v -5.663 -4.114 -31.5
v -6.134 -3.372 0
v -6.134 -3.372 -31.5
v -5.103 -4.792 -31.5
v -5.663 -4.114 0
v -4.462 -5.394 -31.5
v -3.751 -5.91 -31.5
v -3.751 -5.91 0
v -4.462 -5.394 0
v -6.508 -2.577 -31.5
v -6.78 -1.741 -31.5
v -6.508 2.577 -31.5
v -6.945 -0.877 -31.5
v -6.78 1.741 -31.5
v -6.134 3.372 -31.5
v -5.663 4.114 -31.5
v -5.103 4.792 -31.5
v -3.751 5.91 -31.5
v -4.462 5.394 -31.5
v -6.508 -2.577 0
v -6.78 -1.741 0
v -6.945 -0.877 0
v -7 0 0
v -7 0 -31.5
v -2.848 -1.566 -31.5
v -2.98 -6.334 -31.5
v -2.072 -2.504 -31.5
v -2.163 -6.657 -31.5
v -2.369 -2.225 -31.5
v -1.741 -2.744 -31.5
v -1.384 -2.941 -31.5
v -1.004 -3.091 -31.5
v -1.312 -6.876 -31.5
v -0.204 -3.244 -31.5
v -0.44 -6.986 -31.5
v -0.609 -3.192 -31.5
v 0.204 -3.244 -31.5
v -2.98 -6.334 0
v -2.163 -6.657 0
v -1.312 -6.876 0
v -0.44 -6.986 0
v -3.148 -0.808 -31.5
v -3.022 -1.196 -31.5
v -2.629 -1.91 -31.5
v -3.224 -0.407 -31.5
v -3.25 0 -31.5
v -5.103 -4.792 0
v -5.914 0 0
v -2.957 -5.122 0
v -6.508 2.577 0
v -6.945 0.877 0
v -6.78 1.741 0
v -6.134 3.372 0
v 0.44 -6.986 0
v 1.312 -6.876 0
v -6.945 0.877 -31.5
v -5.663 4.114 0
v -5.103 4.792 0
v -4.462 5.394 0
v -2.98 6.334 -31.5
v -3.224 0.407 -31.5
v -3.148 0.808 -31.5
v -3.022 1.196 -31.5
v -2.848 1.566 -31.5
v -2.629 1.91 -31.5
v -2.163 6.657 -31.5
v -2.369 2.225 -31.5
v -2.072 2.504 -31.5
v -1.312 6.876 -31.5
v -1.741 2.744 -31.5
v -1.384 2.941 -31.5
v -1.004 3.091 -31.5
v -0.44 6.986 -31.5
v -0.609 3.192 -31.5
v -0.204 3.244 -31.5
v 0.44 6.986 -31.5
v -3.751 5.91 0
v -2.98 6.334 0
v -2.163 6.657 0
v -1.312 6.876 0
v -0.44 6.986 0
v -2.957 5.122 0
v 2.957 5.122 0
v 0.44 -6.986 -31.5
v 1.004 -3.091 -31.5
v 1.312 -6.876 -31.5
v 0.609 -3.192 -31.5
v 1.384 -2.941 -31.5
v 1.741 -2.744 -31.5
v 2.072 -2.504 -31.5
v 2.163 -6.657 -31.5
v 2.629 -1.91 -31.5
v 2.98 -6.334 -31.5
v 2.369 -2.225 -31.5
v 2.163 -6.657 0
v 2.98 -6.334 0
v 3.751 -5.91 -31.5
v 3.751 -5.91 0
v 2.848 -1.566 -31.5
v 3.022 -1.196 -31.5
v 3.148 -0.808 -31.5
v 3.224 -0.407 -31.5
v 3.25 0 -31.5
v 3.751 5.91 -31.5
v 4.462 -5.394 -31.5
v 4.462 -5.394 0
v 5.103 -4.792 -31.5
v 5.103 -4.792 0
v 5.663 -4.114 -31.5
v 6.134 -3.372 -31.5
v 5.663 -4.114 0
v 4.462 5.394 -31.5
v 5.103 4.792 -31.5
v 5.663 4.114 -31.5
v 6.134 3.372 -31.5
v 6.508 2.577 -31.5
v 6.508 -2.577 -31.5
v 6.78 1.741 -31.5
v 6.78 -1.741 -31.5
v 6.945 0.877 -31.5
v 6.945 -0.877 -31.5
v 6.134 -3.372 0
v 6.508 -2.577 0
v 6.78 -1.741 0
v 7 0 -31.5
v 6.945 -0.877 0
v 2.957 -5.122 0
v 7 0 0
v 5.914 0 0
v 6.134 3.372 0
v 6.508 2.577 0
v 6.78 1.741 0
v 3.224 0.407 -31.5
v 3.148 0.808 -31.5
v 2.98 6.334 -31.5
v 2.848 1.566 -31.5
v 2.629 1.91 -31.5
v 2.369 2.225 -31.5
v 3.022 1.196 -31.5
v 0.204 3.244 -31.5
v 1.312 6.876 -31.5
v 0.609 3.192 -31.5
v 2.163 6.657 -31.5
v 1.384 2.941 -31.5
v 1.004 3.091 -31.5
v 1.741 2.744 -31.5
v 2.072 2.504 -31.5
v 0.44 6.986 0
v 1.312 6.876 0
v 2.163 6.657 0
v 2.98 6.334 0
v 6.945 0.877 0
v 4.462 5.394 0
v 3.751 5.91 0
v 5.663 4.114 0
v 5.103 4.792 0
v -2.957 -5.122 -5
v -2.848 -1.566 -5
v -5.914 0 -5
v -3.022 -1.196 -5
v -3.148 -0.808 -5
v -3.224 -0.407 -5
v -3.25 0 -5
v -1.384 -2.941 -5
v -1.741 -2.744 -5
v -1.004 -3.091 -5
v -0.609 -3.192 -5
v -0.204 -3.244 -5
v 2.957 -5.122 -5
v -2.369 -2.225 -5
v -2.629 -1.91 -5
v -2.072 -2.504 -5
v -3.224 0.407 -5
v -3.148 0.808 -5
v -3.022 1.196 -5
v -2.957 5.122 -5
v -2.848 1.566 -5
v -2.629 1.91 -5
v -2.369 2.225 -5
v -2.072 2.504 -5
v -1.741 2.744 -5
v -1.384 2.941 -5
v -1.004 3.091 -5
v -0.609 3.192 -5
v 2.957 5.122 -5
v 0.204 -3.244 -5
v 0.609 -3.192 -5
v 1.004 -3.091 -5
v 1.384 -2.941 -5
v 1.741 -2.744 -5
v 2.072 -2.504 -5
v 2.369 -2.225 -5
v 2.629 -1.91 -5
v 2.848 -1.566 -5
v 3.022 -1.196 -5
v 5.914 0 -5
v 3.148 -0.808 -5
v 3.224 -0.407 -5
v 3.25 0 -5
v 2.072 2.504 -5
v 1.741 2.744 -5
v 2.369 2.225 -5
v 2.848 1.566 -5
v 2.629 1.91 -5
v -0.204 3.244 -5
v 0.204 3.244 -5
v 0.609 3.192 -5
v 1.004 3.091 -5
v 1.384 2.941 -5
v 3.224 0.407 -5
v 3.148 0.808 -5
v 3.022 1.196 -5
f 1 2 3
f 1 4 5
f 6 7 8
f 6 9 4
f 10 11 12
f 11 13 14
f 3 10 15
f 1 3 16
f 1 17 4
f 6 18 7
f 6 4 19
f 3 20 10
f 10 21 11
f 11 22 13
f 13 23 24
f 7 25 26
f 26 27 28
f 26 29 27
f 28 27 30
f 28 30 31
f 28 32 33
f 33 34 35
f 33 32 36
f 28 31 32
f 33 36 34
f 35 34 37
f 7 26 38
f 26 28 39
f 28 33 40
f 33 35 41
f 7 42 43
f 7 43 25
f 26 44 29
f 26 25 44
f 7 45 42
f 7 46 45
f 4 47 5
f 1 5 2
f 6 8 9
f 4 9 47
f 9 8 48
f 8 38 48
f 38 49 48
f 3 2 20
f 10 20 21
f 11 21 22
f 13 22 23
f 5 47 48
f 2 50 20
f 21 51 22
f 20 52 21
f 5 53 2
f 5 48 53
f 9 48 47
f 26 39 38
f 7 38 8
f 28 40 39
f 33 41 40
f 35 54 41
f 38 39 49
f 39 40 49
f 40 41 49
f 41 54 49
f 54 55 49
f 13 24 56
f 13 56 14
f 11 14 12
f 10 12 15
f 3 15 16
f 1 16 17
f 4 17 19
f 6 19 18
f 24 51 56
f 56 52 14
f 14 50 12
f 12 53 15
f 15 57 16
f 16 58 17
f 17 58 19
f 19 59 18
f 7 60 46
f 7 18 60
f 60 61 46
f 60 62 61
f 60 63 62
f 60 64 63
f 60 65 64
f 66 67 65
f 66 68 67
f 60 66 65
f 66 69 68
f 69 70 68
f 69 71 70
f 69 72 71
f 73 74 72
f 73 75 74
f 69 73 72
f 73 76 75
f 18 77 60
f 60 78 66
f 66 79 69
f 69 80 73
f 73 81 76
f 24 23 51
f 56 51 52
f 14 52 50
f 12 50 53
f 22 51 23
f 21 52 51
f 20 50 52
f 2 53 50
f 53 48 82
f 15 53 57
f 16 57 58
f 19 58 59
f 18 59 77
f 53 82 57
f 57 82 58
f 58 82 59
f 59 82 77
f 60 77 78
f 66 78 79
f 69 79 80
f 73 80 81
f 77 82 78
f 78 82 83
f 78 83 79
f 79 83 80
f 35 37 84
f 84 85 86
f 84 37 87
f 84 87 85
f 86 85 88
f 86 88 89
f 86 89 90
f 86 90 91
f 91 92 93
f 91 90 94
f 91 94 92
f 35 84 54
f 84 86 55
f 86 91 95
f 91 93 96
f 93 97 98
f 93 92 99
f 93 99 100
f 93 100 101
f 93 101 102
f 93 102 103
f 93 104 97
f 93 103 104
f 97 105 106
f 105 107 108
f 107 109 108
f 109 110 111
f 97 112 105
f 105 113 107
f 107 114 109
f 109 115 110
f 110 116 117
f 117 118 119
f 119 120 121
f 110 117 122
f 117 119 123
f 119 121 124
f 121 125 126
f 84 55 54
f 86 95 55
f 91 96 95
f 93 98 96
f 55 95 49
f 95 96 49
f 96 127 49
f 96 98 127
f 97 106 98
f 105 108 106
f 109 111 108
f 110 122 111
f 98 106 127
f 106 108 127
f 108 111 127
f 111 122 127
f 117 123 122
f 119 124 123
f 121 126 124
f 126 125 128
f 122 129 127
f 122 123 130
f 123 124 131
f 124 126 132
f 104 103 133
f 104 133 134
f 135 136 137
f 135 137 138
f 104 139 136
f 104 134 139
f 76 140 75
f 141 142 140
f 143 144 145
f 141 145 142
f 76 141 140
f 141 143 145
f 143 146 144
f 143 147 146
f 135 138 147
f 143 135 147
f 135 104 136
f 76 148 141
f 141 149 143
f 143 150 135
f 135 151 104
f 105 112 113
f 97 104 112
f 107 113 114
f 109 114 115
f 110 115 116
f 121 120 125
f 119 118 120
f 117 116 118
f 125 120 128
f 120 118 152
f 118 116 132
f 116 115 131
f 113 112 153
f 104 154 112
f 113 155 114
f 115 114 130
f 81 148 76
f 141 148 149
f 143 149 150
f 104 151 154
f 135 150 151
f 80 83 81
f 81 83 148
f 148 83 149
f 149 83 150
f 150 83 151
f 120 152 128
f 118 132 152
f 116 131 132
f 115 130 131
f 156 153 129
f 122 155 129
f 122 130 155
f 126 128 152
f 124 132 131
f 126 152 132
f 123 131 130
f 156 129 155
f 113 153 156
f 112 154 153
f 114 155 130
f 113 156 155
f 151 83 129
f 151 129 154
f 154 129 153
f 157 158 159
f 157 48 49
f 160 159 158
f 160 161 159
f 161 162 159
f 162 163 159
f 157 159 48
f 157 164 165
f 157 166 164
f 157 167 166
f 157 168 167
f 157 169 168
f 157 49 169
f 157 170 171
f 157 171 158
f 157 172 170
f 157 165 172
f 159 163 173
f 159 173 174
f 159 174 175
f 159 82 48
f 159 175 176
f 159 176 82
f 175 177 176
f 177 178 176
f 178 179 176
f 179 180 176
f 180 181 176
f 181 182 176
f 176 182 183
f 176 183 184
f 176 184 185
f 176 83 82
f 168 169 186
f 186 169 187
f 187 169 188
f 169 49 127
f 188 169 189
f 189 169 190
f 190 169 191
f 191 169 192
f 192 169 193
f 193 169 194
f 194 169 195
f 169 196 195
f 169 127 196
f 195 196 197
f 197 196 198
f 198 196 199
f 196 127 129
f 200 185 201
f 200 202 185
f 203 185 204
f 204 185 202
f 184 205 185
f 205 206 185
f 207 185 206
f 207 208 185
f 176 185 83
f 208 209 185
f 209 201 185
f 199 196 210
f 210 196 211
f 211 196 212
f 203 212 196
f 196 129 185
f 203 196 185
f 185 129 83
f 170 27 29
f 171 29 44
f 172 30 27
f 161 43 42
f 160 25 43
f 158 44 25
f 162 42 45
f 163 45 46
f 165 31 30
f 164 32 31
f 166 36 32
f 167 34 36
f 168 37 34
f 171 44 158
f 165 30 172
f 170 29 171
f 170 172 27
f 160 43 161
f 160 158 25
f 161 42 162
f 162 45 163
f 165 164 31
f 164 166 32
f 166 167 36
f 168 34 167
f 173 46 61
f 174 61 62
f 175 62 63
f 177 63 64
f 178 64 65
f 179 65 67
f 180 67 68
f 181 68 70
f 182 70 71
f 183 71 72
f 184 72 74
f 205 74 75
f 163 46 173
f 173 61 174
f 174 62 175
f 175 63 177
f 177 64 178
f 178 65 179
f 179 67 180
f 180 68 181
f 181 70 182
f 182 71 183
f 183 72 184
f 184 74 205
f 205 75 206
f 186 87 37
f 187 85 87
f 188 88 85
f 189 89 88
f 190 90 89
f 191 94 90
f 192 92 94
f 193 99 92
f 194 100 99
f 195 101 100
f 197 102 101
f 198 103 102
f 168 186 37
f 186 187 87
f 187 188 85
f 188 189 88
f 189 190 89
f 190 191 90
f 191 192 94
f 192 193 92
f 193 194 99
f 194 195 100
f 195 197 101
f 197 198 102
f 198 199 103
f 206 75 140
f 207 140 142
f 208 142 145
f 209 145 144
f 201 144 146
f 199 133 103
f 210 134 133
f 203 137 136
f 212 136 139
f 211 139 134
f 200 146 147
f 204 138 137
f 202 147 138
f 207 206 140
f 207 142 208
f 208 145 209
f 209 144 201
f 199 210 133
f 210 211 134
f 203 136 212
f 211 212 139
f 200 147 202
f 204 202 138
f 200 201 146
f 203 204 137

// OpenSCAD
$fn = 50;

difference() {
	union() {
		translate(v = [0, 0, -31.5]) {
			cylinder(h = 31.5, r = 7.0);
		}
		#translate(v = [0, 0, -33.0]) {
			cylinder(h = 33, r = 2.875);
		}
	}
	union() {
		translate(v = [0, 0, 0]) {
			rotate(a = [0, 0, 0]) {
				difference() {
					union() {
						translate(v = [0, 0, -5]) {
							linear_extrude(height = 5) {
								polygon(points = [[5.914249999999999, 0.0], [2.957125, 5.1218907443321156], [-2.9571249999999982, 5.1218907443321156], [-5.914249999999999, 7.242867331857232e-16], [-2.9571250000000022, -5.121890744332115], [2.9571249999999956, -5.121890744332118]]);
							}
						}
					}
					union();
				}
			}
		}
		#translate(v = [0, 0, -100.0]) {
			cylinder(h = 200, r = 3.25);
		}
	}
}
